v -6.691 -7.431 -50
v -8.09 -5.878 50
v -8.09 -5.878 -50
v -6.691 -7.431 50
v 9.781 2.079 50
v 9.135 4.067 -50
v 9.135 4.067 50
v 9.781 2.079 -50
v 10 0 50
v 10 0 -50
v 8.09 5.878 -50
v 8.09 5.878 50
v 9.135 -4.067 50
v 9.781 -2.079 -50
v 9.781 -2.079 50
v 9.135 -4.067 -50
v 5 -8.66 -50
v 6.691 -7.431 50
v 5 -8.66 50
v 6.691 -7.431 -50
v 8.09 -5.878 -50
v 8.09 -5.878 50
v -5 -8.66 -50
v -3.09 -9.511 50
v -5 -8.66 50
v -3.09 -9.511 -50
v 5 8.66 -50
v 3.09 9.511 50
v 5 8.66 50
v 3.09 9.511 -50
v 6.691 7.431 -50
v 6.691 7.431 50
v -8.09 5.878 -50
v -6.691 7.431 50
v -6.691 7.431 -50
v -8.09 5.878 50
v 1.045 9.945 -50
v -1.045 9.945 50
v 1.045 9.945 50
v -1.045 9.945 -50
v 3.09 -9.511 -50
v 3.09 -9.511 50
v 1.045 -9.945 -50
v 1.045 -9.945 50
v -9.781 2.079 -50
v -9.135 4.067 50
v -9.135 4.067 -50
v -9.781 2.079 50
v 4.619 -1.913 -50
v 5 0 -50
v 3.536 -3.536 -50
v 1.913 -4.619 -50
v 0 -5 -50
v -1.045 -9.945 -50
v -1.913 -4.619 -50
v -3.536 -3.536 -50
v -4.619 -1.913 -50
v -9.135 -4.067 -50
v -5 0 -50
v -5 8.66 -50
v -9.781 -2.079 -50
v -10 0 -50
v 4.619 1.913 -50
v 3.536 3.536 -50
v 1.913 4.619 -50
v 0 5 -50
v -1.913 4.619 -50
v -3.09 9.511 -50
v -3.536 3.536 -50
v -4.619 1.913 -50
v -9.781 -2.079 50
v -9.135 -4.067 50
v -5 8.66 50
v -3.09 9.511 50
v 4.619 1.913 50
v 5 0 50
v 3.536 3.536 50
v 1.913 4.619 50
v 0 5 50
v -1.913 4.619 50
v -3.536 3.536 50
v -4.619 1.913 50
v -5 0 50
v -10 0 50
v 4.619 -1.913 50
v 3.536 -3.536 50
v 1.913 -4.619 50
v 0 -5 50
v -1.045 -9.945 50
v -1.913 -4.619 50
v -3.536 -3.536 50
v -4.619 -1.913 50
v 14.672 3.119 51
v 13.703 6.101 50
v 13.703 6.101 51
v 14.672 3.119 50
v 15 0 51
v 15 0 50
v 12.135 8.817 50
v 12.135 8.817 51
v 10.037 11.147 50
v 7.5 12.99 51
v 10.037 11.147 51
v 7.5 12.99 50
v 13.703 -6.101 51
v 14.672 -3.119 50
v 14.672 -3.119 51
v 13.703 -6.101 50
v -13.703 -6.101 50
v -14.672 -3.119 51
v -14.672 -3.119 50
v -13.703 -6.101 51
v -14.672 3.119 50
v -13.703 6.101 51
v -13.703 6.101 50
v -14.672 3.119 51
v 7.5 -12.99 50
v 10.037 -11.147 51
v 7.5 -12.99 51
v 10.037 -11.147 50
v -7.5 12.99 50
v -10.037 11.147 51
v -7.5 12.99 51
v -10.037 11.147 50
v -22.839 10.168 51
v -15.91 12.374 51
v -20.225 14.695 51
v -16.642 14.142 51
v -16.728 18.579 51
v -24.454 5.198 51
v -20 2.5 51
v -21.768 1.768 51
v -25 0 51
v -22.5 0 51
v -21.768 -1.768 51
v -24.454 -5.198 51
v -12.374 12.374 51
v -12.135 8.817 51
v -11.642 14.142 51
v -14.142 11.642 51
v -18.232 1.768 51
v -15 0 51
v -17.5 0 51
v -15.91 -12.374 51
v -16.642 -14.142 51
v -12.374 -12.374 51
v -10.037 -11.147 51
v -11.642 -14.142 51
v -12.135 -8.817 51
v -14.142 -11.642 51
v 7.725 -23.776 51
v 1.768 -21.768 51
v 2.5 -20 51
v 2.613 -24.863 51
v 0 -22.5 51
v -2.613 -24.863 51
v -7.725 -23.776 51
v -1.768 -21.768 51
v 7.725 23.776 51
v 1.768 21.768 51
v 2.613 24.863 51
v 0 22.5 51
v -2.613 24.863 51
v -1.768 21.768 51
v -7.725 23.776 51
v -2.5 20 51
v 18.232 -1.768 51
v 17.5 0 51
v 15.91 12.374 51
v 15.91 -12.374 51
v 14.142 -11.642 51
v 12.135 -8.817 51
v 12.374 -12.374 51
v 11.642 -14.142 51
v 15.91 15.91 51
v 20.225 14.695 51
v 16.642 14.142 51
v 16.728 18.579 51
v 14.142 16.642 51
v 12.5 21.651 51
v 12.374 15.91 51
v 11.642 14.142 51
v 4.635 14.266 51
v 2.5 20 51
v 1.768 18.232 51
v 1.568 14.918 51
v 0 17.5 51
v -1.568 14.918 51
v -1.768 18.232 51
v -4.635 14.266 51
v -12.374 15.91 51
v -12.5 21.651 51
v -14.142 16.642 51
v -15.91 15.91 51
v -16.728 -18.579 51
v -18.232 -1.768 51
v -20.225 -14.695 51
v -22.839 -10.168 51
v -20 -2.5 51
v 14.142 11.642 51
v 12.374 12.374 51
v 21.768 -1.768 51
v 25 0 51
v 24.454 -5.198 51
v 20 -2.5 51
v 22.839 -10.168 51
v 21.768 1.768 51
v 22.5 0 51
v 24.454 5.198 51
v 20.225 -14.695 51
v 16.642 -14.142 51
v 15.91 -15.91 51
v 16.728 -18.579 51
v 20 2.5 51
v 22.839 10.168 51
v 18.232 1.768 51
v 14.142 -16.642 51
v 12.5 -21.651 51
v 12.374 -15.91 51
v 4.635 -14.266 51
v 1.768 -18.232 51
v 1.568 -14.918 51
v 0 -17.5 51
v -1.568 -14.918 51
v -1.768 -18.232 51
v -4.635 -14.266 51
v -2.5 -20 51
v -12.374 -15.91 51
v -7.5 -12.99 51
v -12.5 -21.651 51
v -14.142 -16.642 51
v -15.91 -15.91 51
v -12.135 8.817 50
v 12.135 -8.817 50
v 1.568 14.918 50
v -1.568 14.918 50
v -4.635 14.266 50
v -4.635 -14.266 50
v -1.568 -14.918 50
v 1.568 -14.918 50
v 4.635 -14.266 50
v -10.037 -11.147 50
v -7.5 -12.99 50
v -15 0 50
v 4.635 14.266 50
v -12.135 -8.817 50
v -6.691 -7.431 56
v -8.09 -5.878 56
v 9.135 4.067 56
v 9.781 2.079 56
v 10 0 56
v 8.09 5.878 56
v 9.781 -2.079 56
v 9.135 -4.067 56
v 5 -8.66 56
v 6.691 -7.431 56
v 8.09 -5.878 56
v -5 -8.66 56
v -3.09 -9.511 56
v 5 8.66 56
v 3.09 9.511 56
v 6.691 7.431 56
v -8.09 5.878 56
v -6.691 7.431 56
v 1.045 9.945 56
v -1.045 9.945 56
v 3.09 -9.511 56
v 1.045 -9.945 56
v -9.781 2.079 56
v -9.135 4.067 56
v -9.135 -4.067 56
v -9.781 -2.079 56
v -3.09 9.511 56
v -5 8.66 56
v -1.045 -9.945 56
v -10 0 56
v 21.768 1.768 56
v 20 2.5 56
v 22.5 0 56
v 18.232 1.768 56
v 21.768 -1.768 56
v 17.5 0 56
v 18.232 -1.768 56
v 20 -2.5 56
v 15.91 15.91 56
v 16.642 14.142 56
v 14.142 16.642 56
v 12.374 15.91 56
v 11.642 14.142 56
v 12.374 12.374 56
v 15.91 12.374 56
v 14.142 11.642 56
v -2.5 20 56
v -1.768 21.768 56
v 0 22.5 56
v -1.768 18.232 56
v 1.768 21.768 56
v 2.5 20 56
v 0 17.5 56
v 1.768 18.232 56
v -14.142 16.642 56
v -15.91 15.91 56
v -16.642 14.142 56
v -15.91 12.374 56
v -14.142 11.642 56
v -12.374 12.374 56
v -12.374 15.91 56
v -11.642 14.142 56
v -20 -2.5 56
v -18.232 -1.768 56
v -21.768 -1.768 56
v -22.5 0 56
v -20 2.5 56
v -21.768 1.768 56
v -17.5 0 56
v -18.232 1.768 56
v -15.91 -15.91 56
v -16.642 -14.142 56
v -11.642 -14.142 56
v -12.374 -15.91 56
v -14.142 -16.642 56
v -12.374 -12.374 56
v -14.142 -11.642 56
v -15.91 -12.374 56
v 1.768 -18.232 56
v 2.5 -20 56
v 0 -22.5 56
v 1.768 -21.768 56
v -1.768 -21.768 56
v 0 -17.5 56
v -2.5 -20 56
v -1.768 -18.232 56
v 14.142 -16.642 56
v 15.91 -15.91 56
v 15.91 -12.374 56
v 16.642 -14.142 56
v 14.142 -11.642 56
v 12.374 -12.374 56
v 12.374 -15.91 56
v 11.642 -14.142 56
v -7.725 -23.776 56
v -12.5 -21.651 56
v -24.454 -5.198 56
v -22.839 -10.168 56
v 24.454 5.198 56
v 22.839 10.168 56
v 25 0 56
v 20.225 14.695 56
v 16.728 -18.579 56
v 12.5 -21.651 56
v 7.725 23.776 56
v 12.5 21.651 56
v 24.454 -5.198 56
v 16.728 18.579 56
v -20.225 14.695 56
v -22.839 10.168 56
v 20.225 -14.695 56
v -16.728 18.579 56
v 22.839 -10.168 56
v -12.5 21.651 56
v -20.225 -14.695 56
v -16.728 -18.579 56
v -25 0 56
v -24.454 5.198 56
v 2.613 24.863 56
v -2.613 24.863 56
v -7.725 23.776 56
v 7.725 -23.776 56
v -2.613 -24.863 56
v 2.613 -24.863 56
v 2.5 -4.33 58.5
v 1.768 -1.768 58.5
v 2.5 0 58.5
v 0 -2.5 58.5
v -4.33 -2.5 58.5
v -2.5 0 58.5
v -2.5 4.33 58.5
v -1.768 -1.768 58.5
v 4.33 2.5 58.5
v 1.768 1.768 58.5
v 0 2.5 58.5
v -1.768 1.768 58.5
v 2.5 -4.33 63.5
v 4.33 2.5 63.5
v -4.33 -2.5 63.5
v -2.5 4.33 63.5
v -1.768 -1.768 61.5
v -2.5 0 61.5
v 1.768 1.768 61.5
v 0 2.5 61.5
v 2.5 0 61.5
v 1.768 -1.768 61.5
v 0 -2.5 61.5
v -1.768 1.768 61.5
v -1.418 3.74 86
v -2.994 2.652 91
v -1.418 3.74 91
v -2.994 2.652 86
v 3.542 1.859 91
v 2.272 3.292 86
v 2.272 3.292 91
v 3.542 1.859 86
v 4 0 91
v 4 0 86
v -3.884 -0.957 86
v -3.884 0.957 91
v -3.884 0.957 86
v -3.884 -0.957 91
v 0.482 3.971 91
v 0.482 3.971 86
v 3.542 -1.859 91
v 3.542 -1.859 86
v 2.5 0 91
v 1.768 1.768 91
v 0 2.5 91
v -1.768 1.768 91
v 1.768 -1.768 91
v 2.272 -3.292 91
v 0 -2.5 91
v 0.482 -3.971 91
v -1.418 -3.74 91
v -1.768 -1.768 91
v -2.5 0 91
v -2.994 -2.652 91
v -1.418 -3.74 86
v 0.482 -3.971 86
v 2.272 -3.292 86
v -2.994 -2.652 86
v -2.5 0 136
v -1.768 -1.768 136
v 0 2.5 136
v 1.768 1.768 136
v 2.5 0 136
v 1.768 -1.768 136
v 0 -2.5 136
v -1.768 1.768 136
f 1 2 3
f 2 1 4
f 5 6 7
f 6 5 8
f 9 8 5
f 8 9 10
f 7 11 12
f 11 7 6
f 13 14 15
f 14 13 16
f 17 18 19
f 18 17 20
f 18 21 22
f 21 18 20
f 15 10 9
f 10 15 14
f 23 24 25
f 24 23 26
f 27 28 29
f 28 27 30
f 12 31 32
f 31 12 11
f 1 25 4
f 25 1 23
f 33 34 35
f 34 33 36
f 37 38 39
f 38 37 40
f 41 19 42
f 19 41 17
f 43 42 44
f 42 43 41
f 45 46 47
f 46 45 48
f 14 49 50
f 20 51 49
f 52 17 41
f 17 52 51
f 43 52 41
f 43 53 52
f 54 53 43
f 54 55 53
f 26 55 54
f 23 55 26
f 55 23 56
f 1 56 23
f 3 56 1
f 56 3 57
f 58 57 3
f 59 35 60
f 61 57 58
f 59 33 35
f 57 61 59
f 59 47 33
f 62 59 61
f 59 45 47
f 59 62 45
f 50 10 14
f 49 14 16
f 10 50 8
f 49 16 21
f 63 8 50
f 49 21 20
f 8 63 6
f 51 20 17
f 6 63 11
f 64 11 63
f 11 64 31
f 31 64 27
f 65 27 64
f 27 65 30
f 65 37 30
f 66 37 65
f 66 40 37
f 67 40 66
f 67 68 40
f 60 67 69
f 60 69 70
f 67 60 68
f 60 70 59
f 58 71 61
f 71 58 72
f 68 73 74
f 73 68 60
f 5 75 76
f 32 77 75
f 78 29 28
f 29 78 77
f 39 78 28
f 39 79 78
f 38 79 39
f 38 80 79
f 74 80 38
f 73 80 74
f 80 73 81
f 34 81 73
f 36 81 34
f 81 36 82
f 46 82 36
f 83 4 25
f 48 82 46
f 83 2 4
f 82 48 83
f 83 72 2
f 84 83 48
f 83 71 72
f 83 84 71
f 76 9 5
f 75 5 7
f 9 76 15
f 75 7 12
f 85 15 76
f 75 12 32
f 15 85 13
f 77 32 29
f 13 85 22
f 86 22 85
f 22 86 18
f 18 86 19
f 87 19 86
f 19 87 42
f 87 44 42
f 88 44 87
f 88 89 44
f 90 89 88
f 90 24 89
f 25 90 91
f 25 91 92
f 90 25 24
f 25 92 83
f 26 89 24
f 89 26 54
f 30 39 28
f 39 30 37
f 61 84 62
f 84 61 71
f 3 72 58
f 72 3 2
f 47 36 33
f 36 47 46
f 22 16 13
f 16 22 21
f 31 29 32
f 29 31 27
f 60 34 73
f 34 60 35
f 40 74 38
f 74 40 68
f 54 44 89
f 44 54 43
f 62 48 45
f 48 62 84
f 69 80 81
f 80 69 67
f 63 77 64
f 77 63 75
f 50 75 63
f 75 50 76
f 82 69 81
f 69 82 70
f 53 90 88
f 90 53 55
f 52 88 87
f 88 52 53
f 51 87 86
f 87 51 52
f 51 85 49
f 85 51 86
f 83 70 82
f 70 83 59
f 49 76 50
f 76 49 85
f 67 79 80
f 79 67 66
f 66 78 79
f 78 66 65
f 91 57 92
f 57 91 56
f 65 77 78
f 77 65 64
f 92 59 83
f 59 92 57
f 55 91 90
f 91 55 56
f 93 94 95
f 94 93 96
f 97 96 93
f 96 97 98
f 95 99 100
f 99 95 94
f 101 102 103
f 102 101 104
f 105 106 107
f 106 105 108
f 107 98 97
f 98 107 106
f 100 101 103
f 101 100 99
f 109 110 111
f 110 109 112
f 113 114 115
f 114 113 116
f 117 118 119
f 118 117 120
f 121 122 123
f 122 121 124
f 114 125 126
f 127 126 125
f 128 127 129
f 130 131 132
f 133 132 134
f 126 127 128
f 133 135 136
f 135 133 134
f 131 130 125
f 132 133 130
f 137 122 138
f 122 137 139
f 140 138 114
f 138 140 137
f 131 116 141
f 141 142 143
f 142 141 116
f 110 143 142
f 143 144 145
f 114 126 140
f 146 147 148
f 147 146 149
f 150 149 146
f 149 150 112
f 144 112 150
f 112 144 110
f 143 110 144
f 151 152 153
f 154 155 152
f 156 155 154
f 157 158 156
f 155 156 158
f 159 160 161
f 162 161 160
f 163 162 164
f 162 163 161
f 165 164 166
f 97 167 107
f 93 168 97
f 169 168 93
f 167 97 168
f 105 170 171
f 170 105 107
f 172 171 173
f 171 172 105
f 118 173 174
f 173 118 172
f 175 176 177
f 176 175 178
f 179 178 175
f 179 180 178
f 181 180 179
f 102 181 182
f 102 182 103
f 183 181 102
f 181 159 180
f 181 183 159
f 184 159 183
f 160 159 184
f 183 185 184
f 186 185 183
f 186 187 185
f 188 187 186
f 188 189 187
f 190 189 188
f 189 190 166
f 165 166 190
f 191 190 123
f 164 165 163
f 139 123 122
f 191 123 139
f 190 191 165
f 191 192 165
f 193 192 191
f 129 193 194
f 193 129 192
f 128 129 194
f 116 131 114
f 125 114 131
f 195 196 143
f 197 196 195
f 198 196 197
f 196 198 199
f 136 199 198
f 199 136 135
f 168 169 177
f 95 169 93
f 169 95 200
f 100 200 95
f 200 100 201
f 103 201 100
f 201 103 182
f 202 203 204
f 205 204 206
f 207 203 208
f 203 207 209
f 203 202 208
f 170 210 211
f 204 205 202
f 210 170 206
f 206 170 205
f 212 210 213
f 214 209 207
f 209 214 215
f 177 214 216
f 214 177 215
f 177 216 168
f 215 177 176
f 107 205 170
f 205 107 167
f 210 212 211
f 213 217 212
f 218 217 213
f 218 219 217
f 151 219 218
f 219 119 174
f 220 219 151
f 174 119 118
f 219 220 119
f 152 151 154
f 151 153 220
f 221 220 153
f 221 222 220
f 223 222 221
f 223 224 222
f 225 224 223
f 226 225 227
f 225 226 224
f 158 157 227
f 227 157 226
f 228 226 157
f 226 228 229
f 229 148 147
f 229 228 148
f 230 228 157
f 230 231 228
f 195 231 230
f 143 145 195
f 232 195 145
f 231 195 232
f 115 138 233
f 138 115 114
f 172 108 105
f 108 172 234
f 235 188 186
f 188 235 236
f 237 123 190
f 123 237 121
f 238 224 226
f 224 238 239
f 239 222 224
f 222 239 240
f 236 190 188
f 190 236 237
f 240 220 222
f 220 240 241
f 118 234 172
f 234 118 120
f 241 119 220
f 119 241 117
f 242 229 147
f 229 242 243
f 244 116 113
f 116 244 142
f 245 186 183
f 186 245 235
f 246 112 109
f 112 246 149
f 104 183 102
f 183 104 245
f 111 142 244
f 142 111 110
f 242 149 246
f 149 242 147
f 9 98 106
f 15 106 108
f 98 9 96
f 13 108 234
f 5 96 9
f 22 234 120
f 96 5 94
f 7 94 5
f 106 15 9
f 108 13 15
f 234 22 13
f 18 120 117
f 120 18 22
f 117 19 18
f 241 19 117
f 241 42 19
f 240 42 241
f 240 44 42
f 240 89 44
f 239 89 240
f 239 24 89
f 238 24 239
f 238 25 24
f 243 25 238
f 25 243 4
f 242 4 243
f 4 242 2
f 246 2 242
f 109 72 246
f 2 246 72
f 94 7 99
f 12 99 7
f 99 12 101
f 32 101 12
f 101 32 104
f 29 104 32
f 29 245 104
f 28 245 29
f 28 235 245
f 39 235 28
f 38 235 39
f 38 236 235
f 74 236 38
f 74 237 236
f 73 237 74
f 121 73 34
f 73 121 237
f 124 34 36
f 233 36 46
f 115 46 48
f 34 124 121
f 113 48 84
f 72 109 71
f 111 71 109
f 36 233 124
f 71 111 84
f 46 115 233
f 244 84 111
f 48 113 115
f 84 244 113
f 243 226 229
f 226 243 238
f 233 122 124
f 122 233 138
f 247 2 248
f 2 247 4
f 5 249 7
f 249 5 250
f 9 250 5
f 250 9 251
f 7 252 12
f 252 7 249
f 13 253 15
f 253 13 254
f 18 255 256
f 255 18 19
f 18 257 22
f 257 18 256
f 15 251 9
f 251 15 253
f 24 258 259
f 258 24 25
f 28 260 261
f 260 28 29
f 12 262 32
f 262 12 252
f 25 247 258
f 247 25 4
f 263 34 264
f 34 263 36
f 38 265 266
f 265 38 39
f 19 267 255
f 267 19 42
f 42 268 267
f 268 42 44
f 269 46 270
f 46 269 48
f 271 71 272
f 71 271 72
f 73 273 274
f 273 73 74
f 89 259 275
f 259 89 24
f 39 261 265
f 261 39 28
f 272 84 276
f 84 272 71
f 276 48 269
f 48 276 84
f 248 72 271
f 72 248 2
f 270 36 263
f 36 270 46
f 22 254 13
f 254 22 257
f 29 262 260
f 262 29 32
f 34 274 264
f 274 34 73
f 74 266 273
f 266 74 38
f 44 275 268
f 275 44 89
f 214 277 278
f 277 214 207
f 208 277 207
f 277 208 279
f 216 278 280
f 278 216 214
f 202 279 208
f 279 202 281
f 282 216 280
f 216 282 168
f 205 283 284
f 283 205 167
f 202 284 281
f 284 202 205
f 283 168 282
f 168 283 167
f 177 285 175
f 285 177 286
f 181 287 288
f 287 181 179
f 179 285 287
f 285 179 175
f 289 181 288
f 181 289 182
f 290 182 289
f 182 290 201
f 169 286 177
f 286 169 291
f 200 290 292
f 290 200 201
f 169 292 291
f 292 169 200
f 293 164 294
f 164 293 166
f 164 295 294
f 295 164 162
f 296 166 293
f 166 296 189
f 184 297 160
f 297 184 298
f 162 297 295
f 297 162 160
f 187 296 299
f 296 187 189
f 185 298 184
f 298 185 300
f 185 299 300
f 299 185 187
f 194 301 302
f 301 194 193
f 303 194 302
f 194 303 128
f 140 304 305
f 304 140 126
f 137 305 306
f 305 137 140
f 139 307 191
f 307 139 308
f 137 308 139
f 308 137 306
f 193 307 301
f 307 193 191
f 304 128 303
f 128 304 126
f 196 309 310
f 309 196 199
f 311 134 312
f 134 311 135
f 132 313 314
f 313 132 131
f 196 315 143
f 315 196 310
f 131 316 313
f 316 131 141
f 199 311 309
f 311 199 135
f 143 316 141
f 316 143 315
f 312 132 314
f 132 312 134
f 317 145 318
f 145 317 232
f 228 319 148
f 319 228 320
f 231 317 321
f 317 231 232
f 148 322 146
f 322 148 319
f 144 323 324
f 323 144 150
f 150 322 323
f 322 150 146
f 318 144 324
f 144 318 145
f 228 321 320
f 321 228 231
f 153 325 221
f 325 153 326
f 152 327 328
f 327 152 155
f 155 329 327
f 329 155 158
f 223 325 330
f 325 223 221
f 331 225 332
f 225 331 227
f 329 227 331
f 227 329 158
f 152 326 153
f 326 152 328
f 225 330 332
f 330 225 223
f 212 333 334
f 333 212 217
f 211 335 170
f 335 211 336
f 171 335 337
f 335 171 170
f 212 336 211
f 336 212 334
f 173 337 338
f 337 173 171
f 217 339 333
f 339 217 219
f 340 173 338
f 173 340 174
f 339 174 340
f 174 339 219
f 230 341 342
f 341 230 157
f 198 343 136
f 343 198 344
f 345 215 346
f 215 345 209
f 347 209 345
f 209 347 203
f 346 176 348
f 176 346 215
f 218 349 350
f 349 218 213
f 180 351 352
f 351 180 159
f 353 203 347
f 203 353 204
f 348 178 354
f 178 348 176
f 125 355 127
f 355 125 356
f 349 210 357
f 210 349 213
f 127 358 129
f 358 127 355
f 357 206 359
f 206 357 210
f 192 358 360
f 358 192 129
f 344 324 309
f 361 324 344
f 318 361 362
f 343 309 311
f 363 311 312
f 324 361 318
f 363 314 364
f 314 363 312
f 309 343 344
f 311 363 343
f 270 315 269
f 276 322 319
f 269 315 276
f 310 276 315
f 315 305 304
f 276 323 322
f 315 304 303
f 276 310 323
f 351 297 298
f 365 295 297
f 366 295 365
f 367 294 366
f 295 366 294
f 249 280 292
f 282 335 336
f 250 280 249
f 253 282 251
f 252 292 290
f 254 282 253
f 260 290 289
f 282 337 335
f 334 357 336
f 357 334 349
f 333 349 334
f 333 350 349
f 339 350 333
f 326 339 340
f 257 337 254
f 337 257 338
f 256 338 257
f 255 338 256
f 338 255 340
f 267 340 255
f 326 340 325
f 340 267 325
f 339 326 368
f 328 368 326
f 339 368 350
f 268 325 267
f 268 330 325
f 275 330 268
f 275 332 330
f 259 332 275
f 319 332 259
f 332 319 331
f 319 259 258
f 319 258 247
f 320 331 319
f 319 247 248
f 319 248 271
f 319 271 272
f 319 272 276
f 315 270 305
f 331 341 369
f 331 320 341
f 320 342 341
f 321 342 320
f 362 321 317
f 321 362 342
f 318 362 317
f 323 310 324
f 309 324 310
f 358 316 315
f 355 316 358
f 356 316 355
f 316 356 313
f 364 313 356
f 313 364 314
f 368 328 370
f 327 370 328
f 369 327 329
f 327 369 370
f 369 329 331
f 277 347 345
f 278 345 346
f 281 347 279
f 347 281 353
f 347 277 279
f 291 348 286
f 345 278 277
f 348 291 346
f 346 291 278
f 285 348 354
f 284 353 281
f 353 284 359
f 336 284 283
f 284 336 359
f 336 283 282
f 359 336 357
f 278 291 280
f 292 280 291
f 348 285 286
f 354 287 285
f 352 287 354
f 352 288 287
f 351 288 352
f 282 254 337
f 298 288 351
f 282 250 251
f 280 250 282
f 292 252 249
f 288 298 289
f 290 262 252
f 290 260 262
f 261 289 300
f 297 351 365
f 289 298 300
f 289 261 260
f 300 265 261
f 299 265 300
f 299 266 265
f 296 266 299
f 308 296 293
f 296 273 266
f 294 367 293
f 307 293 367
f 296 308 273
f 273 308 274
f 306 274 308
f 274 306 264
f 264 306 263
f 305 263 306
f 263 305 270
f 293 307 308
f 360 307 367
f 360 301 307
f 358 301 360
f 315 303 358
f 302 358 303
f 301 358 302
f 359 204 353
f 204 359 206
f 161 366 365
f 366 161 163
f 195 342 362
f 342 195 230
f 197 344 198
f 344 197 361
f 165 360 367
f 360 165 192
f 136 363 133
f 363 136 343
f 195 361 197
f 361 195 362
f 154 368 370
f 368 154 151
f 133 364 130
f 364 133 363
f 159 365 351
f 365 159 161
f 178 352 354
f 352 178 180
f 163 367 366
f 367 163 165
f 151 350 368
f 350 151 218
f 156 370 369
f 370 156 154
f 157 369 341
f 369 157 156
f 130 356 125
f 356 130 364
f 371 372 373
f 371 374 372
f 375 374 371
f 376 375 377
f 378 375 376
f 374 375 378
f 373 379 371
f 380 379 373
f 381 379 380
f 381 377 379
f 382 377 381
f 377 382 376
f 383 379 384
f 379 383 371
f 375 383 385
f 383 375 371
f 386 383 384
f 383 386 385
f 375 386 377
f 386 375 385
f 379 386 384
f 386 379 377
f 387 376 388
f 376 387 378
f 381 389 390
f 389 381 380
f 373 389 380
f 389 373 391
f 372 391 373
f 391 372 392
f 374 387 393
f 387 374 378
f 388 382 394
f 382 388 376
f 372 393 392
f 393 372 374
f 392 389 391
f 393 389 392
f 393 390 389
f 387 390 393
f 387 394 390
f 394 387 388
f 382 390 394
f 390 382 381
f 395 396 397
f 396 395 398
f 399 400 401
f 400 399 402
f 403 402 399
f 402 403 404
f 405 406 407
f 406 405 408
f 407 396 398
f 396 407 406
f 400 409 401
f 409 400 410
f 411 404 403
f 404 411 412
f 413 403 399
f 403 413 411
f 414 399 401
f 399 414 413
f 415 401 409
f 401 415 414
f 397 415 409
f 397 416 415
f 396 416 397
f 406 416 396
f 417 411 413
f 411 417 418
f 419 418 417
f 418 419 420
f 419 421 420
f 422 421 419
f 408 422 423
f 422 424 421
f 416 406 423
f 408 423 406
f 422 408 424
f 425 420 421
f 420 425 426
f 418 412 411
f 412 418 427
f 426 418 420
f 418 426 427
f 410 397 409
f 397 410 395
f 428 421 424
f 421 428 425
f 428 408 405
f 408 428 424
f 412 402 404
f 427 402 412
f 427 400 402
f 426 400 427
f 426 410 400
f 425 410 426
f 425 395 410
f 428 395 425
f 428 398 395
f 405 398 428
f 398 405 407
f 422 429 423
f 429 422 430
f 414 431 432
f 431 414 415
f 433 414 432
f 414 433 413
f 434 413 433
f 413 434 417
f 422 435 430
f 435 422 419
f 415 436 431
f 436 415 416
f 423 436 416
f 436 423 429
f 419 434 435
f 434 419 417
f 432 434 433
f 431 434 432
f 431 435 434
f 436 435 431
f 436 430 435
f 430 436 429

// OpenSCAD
// Parameters for the central shaft
shaft_length = 100; // Length of the shaft
outer_diameter = 20; // Outer diameter of the shaft
inner_diameter = 10; // Inner diameter (hollow center)

// Function to create the central shaft
module central_shaft() {
    // Adjusted to have a uniform cylindrical shape
    difference() {
        // Outer cylinder
        cylinder(h = shaft_length, d = outer_diameter, center = true);
        // Inner hollow cylinder
        cylinder(h = shaft_length, d = inner_diameter, center = true);
    }
}

// Parameters for the spacer ring
spacer_thickness = 1; // Adjusted thickness of the spacer ring
spacer_outer_diameter = 30; // Outer diameter of the spacer ring
spacer_inner_diameter = 20; // Inner diameter of the spacer ring

// Function to create the spacer ring
module spacer_ring() {
    // Adjusted to be thinner and flatter
    difference() {
        // Outer cylinder
        cylinder(h = spacer_thickness, d = spacer_outer_diameter, center = true);
        // Inner hollow cylinder
        cylinder(h = spacer_thickness + 1, d = spacer_inner_diameter, center = true);
    }
}

// Parameters for the flange plate
flange_thickness = 5; // Thickness of the flange plate
flange_outer_diameter = 50; // Outer diameter of the flange plate
flange_inner_diameter = 20; // Inner diameter of the flange plate
bolt_hole_diameter = 5; // Diameter of the bolt holes
num_bolt_holes = 8; // Adjusted number of bolt holes

// Function to create the flange plate
module flange_plate() {
    // Adjusted to have more bolt holes and a larger outer diameter
    difference() {
        // Outer cylinder
        cylinder(h = flange_thickness, d = flange_outer_diameter, center = true);
        // Inner hollow cylinder
        cylinder(h = flange_thickness + 1, d = flange_inner_diameter, center = true);
        // Bolt holes
        for (i = [0:num_bolt_holes-1]) {
            rotate([0, 0, i * 360 / num_bolt_holes])
                translate([flange_outer_diameter / 2 - 5, 0, 0])
                cylinder(h = flange_thickness + 2, d = bolt_hole_diameter, center = true);
        }
    }
}

// Parameters for the nut
nut_thickness = 5; // Thickness of the nut
nut_outer_diameter = 10; // Outer diameter of the nut
nut_inner_diameter = 5; // Inner diameter of the nut

// Function to create the nut
module nut() {
    // Adjusted to have a more compact hexagonal shape
    difference() {
        // Hexagonal prism
        rotate([0, 0, 30])
            linear_extrude(height = nut_thickness)
                polygon(points = [[-nut_outer_diameter / 2, 0], [0, nut_outer_diameter / 2], [nut_outer_diameter / 2, 0], [0, -nut_outer_diameter / 2]]);
        // Inner hollow cylinder
        cylinder(h = nut_thickness + 1, d = nut_inner_diameter, center = true);
    }
}

// Parameters for the bolt
bolt_length = 50; // Length of the bolt
bolt_head_diameter = 8; // Diameter of the bolt head
bolt_thread_diameter = 5; // Diameter of the bolt thread
bolt_thread_length = 45; // Adjusted length of the bolt thread

// Function to create the bolt
module bolt() {
    // Adjusted to have a longer threaded section and a smaller flat head
    union() {
        // Bolt head
        cylinder(h = bolt_length - bolt_thread_length, d = bolt_head_diameter, center = false);
        // Bolt thread
        translate([0, 0, bolt_length - bolt_thread_length])
            cylinder(h = bolt_thread_length, d = bolt_thread_diameter, center = false);
    }
}

// Render the components
central_shaft();
translate([0, 0, shaft_length / 2 + spacer_thickness / 2]) spacer_ring();
translate([0, 0, shaft_length / 2 + spacer_thickness + flange_thickness / 2]) flange_plate();
translate([0, 0, shaft_length / 2 + spacer_thickness + flange_thickness + nut_thickness / 2]) nut();
translate([0, 0, shaft_length / 2 + spacer_thickness + flange_thickness + nut_thickness + bolt_length / 2]) bolt();
